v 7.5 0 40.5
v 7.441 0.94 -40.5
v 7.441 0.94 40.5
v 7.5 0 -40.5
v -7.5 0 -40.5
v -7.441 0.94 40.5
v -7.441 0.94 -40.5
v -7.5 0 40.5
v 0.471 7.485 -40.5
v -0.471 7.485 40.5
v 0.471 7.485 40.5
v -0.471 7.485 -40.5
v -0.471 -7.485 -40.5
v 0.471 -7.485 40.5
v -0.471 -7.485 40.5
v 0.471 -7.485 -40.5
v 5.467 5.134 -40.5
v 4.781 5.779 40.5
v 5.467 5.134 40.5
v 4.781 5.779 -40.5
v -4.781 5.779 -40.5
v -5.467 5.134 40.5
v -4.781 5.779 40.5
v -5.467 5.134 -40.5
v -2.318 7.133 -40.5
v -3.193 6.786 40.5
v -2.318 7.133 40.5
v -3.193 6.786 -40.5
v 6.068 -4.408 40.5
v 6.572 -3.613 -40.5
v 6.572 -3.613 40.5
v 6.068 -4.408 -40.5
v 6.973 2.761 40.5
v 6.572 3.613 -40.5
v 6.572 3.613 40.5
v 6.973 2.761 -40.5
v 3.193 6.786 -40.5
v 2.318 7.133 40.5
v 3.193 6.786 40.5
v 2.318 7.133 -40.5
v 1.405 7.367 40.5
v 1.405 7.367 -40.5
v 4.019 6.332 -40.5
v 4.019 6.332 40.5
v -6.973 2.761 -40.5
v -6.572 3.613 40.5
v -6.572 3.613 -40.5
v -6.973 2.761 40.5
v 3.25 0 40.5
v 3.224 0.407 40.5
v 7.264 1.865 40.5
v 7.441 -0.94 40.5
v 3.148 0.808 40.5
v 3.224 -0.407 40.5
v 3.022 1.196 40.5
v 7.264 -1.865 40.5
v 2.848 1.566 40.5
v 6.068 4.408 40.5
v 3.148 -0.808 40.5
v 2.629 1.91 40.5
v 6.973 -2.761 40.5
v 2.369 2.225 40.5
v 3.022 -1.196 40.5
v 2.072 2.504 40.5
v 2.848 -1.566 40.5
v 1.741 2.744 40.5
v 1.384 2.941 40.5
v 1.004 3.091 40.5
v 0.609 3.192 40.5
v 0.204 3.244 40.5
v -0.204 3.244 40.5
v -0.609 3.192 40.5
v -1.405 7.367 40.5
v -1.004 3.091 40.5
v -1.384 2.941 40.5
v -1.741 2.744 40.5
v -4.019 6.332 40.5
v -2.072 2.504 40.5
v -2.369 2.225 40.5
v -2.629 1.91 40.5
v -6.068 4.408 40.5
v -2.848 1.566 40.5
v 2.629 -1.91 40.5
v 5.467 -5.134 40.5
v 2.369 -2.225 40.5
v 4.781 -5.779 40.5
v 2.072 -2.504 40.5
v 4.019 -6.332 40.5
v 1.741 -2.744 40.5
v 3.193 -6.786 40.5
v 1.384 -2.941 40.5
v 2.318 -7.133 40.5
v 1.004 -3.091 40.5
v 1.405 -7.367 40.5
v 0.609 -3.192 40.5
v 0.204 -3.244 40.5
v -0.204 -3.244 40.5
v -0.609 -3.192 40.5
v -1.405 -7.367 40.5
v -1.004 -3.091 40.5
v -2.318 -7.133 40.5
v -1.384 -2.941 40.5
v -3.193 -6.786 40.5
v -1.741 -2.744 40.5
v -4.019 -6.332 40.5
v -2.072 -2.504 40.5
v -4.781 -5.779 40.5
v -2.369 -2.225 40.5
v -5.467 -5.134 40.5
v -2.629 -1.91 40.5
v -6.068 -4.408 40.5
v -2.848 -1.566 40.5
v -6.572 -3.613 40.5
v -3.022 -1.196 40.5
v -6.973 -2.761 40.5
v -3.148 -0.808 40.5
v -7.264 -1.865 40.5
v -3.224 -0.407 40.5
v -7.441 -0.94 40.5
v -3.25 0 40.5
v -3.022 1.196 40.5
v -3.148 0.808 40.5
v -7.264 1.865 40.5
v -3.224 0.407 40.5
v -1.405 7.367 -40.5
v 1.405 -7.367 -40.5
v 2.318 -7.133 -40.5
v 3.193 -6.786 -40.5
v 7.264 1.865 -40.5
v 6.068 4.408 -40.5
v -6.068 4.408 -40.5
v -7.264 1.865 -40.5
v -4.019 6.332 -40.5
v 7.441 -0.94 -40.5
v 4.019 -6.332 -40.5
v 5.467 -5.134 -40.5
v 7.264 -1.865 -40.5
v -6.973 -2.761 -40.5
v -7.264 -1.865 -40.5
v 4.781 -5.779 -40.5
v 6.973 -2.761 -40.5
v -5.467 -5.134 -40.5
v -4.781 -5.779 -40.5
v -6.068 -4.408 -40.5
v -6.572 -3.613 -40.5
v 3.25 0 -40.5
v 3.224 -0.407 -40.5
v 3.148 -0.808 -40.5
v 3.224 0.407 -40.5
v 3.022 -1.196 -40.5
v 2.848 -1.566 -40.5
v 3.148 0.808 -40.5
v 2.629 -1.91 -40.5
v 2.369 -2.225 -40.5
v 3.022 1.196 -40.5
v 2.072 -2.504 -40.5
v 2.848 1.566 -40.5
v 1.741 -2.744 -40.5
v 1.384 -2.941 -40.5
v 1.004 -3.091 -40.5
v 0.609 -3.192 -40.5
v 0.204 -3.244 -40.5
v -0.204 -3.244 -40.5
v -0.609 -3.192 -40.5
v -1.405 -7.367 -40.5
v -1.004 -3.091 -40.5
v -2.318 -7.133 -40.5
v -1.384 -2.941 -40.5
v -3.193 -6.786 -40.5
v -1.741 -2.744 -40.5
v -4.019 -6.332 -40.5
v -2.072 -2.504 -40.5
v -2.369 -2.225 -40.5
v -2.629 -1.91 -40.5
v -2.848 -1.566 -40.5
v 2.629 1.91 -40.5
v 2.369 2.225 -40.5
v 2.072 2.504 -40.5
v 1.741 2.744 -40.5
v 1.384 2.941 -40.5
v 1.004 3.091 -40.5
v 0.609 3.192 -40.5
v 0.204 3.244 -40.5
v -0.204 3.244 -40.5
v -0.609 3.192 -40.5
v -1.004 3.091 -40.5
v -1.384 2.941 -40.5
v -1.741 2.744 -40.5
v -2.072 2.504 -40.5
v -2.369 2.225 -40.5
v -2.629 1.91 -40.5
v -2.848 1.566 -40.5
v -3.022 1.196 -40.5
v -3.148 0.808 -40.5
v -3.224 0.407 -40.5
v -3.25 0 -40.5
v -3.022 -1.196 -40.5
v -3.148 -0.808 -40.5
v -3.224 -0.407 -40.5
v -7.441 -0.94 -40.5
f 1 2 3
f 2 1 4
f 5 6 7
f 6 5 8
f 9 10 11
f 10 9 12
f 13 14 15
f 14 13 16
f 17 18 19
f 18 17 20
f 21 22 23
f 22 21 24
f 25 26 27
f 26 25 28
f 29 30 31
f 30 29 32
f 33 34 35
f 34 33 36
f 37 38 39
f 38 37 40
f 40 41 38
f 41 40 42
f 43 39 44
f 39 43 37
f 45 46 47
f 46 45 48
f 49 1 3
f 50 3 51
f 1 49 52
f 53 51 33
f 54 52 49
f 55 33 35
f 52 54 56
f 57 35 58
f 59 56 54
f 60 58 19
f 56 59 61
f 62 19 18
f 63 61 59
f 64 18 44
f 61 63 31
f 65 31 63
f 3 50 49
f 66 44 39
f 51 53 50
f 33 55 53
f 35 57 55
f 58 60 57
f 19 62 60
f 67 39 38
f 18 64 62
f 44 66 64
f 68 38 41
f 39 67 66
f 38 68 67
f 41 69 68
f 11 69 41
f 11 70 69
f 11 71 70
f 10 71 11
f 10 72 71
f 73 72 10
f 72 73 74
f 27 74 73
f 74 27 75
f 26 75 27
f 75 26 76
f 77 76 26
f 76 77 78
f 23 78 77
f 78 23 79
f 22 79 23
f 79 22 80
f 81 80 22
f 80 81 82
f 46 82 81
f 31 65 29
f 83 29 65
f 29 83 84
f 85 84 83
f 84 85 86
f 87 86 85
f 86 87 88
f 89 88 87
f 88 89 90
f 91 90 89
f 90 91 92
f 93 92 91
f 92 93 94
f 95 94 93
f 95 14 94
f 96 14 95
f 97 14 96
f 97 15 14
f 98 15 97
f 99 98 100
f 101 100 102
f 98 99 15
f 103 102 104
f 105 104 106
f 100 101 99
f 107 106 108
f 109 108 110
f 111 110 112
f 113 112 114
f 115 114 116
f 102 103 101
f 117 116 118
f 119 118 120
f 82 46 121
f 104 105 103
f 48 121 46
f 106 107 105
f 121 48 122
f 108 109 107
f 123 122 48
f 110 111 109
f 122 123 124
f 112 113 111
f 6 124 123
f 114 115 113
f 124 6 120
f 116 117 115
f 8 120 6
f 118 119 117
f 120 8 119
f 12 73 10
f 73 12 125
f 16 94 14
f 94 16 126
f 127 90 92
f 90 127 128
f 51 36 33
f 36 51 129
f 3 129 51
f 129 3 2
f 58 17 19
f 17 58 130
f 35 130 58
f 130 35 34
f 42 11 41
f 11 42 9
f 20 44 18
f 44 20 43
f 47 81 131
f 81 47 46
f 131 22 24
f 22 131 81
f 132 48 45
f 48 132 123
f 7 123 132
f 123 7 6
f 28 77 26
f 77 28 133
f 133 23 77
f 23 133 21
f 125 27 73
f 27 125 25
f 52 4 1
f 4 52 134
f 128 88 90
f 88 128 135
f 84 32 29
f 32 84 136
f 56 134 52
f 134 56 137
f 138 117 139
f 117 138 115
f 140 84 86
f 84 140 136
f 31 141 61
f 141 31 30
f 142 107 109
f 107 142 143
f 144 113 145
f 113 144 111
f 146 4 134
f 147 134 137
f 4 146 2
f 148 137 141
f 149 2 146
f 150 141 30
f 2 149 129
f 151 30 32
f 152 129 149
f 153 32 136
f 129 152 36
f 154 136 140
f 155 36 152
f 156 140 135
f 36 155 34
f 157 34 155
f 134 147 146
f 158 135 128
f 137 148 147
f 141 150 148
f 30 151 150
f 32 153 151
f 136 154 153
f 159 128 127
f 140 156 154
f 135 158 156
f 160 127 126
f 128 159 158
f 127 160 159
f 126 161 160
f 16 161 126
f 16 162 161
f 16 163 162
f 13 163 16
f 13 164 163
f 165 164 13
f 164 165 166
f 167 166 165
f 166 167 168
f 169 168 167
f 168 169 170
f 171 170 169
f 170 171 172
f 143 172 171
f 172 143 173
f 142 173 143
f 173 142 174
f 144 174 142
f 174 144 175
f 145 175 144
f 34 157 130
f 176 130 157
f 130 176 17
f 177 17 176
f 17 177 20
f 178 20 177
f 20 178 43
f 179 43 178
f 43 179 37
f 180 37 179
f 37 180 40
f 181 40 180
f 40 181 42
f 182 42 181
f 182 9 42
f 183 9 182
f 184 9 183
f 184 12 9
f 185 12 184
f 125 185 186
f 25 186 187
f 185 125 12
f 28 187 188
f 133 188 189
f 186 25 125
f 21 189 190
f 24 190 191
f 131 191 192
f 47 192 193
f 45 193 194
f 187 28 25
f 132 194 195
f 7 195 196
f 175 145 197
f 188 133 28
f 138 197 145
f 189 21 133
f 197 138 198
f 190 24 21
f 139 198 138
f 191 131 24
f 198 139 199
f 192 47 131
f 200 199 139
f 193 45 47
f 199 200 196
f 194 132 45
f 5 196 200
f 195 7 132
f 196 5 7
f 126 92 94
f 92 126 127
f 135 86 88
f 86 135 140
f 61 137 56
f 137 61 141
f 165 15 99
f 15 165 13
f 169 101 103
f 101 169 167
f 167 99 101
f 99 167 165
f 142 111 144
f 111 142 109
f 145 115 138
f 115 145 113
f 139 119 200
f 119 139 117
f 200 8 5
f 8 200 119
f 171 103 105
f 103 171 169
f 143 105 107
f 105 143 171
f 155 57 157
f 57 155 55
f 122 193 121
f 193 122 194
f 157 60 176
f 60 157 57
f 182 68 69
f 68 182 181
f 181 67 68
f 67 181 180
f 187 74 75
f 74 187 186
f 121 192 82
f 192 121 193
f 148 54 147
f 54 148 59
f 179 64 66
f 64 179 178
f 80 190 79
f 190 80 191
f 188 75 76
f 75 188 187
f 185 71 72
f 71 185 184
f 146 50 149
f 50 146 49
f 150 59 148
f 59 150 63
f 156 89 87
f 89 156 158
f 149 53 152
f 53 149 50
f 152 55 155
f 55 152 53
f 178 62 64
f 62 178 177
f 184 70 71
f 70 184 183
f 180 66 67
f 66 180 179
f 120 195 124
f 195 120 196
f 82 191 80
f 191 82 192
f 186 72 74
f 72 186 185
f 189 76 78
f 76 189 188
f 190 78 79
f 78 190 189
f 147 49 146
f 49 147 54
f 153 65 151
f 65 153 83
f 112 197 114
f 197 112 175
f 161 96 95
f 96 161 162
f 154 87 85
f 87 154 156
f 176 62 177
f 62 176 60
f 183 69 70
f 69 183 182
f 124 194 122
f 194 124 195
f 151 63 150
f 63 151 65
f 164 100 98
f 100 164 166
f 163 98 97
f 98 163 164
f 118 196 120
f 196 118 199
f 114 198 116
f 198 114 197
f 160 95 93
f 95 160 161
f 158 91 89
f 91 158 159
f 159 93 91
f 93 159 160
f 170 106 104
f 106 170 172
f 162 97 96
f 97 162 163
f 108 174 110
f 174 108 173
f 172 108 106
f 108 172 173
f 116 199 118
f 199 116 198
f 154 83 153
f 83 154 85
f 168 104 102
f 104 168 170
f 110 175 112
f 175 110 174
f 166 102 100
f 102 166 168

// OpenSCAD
$fn = 50;


difference() {
	union() {
		translate(v = [0, 0, -40.5000000000]) {
			cylinder(h = 81, r = 7.5000000000);
		}
	}
	union() {
		translate(v = [0, 0, -100.0000000000]) {
			cylinder(h = 200, r = 3.2500000000);
		}
	}
}
